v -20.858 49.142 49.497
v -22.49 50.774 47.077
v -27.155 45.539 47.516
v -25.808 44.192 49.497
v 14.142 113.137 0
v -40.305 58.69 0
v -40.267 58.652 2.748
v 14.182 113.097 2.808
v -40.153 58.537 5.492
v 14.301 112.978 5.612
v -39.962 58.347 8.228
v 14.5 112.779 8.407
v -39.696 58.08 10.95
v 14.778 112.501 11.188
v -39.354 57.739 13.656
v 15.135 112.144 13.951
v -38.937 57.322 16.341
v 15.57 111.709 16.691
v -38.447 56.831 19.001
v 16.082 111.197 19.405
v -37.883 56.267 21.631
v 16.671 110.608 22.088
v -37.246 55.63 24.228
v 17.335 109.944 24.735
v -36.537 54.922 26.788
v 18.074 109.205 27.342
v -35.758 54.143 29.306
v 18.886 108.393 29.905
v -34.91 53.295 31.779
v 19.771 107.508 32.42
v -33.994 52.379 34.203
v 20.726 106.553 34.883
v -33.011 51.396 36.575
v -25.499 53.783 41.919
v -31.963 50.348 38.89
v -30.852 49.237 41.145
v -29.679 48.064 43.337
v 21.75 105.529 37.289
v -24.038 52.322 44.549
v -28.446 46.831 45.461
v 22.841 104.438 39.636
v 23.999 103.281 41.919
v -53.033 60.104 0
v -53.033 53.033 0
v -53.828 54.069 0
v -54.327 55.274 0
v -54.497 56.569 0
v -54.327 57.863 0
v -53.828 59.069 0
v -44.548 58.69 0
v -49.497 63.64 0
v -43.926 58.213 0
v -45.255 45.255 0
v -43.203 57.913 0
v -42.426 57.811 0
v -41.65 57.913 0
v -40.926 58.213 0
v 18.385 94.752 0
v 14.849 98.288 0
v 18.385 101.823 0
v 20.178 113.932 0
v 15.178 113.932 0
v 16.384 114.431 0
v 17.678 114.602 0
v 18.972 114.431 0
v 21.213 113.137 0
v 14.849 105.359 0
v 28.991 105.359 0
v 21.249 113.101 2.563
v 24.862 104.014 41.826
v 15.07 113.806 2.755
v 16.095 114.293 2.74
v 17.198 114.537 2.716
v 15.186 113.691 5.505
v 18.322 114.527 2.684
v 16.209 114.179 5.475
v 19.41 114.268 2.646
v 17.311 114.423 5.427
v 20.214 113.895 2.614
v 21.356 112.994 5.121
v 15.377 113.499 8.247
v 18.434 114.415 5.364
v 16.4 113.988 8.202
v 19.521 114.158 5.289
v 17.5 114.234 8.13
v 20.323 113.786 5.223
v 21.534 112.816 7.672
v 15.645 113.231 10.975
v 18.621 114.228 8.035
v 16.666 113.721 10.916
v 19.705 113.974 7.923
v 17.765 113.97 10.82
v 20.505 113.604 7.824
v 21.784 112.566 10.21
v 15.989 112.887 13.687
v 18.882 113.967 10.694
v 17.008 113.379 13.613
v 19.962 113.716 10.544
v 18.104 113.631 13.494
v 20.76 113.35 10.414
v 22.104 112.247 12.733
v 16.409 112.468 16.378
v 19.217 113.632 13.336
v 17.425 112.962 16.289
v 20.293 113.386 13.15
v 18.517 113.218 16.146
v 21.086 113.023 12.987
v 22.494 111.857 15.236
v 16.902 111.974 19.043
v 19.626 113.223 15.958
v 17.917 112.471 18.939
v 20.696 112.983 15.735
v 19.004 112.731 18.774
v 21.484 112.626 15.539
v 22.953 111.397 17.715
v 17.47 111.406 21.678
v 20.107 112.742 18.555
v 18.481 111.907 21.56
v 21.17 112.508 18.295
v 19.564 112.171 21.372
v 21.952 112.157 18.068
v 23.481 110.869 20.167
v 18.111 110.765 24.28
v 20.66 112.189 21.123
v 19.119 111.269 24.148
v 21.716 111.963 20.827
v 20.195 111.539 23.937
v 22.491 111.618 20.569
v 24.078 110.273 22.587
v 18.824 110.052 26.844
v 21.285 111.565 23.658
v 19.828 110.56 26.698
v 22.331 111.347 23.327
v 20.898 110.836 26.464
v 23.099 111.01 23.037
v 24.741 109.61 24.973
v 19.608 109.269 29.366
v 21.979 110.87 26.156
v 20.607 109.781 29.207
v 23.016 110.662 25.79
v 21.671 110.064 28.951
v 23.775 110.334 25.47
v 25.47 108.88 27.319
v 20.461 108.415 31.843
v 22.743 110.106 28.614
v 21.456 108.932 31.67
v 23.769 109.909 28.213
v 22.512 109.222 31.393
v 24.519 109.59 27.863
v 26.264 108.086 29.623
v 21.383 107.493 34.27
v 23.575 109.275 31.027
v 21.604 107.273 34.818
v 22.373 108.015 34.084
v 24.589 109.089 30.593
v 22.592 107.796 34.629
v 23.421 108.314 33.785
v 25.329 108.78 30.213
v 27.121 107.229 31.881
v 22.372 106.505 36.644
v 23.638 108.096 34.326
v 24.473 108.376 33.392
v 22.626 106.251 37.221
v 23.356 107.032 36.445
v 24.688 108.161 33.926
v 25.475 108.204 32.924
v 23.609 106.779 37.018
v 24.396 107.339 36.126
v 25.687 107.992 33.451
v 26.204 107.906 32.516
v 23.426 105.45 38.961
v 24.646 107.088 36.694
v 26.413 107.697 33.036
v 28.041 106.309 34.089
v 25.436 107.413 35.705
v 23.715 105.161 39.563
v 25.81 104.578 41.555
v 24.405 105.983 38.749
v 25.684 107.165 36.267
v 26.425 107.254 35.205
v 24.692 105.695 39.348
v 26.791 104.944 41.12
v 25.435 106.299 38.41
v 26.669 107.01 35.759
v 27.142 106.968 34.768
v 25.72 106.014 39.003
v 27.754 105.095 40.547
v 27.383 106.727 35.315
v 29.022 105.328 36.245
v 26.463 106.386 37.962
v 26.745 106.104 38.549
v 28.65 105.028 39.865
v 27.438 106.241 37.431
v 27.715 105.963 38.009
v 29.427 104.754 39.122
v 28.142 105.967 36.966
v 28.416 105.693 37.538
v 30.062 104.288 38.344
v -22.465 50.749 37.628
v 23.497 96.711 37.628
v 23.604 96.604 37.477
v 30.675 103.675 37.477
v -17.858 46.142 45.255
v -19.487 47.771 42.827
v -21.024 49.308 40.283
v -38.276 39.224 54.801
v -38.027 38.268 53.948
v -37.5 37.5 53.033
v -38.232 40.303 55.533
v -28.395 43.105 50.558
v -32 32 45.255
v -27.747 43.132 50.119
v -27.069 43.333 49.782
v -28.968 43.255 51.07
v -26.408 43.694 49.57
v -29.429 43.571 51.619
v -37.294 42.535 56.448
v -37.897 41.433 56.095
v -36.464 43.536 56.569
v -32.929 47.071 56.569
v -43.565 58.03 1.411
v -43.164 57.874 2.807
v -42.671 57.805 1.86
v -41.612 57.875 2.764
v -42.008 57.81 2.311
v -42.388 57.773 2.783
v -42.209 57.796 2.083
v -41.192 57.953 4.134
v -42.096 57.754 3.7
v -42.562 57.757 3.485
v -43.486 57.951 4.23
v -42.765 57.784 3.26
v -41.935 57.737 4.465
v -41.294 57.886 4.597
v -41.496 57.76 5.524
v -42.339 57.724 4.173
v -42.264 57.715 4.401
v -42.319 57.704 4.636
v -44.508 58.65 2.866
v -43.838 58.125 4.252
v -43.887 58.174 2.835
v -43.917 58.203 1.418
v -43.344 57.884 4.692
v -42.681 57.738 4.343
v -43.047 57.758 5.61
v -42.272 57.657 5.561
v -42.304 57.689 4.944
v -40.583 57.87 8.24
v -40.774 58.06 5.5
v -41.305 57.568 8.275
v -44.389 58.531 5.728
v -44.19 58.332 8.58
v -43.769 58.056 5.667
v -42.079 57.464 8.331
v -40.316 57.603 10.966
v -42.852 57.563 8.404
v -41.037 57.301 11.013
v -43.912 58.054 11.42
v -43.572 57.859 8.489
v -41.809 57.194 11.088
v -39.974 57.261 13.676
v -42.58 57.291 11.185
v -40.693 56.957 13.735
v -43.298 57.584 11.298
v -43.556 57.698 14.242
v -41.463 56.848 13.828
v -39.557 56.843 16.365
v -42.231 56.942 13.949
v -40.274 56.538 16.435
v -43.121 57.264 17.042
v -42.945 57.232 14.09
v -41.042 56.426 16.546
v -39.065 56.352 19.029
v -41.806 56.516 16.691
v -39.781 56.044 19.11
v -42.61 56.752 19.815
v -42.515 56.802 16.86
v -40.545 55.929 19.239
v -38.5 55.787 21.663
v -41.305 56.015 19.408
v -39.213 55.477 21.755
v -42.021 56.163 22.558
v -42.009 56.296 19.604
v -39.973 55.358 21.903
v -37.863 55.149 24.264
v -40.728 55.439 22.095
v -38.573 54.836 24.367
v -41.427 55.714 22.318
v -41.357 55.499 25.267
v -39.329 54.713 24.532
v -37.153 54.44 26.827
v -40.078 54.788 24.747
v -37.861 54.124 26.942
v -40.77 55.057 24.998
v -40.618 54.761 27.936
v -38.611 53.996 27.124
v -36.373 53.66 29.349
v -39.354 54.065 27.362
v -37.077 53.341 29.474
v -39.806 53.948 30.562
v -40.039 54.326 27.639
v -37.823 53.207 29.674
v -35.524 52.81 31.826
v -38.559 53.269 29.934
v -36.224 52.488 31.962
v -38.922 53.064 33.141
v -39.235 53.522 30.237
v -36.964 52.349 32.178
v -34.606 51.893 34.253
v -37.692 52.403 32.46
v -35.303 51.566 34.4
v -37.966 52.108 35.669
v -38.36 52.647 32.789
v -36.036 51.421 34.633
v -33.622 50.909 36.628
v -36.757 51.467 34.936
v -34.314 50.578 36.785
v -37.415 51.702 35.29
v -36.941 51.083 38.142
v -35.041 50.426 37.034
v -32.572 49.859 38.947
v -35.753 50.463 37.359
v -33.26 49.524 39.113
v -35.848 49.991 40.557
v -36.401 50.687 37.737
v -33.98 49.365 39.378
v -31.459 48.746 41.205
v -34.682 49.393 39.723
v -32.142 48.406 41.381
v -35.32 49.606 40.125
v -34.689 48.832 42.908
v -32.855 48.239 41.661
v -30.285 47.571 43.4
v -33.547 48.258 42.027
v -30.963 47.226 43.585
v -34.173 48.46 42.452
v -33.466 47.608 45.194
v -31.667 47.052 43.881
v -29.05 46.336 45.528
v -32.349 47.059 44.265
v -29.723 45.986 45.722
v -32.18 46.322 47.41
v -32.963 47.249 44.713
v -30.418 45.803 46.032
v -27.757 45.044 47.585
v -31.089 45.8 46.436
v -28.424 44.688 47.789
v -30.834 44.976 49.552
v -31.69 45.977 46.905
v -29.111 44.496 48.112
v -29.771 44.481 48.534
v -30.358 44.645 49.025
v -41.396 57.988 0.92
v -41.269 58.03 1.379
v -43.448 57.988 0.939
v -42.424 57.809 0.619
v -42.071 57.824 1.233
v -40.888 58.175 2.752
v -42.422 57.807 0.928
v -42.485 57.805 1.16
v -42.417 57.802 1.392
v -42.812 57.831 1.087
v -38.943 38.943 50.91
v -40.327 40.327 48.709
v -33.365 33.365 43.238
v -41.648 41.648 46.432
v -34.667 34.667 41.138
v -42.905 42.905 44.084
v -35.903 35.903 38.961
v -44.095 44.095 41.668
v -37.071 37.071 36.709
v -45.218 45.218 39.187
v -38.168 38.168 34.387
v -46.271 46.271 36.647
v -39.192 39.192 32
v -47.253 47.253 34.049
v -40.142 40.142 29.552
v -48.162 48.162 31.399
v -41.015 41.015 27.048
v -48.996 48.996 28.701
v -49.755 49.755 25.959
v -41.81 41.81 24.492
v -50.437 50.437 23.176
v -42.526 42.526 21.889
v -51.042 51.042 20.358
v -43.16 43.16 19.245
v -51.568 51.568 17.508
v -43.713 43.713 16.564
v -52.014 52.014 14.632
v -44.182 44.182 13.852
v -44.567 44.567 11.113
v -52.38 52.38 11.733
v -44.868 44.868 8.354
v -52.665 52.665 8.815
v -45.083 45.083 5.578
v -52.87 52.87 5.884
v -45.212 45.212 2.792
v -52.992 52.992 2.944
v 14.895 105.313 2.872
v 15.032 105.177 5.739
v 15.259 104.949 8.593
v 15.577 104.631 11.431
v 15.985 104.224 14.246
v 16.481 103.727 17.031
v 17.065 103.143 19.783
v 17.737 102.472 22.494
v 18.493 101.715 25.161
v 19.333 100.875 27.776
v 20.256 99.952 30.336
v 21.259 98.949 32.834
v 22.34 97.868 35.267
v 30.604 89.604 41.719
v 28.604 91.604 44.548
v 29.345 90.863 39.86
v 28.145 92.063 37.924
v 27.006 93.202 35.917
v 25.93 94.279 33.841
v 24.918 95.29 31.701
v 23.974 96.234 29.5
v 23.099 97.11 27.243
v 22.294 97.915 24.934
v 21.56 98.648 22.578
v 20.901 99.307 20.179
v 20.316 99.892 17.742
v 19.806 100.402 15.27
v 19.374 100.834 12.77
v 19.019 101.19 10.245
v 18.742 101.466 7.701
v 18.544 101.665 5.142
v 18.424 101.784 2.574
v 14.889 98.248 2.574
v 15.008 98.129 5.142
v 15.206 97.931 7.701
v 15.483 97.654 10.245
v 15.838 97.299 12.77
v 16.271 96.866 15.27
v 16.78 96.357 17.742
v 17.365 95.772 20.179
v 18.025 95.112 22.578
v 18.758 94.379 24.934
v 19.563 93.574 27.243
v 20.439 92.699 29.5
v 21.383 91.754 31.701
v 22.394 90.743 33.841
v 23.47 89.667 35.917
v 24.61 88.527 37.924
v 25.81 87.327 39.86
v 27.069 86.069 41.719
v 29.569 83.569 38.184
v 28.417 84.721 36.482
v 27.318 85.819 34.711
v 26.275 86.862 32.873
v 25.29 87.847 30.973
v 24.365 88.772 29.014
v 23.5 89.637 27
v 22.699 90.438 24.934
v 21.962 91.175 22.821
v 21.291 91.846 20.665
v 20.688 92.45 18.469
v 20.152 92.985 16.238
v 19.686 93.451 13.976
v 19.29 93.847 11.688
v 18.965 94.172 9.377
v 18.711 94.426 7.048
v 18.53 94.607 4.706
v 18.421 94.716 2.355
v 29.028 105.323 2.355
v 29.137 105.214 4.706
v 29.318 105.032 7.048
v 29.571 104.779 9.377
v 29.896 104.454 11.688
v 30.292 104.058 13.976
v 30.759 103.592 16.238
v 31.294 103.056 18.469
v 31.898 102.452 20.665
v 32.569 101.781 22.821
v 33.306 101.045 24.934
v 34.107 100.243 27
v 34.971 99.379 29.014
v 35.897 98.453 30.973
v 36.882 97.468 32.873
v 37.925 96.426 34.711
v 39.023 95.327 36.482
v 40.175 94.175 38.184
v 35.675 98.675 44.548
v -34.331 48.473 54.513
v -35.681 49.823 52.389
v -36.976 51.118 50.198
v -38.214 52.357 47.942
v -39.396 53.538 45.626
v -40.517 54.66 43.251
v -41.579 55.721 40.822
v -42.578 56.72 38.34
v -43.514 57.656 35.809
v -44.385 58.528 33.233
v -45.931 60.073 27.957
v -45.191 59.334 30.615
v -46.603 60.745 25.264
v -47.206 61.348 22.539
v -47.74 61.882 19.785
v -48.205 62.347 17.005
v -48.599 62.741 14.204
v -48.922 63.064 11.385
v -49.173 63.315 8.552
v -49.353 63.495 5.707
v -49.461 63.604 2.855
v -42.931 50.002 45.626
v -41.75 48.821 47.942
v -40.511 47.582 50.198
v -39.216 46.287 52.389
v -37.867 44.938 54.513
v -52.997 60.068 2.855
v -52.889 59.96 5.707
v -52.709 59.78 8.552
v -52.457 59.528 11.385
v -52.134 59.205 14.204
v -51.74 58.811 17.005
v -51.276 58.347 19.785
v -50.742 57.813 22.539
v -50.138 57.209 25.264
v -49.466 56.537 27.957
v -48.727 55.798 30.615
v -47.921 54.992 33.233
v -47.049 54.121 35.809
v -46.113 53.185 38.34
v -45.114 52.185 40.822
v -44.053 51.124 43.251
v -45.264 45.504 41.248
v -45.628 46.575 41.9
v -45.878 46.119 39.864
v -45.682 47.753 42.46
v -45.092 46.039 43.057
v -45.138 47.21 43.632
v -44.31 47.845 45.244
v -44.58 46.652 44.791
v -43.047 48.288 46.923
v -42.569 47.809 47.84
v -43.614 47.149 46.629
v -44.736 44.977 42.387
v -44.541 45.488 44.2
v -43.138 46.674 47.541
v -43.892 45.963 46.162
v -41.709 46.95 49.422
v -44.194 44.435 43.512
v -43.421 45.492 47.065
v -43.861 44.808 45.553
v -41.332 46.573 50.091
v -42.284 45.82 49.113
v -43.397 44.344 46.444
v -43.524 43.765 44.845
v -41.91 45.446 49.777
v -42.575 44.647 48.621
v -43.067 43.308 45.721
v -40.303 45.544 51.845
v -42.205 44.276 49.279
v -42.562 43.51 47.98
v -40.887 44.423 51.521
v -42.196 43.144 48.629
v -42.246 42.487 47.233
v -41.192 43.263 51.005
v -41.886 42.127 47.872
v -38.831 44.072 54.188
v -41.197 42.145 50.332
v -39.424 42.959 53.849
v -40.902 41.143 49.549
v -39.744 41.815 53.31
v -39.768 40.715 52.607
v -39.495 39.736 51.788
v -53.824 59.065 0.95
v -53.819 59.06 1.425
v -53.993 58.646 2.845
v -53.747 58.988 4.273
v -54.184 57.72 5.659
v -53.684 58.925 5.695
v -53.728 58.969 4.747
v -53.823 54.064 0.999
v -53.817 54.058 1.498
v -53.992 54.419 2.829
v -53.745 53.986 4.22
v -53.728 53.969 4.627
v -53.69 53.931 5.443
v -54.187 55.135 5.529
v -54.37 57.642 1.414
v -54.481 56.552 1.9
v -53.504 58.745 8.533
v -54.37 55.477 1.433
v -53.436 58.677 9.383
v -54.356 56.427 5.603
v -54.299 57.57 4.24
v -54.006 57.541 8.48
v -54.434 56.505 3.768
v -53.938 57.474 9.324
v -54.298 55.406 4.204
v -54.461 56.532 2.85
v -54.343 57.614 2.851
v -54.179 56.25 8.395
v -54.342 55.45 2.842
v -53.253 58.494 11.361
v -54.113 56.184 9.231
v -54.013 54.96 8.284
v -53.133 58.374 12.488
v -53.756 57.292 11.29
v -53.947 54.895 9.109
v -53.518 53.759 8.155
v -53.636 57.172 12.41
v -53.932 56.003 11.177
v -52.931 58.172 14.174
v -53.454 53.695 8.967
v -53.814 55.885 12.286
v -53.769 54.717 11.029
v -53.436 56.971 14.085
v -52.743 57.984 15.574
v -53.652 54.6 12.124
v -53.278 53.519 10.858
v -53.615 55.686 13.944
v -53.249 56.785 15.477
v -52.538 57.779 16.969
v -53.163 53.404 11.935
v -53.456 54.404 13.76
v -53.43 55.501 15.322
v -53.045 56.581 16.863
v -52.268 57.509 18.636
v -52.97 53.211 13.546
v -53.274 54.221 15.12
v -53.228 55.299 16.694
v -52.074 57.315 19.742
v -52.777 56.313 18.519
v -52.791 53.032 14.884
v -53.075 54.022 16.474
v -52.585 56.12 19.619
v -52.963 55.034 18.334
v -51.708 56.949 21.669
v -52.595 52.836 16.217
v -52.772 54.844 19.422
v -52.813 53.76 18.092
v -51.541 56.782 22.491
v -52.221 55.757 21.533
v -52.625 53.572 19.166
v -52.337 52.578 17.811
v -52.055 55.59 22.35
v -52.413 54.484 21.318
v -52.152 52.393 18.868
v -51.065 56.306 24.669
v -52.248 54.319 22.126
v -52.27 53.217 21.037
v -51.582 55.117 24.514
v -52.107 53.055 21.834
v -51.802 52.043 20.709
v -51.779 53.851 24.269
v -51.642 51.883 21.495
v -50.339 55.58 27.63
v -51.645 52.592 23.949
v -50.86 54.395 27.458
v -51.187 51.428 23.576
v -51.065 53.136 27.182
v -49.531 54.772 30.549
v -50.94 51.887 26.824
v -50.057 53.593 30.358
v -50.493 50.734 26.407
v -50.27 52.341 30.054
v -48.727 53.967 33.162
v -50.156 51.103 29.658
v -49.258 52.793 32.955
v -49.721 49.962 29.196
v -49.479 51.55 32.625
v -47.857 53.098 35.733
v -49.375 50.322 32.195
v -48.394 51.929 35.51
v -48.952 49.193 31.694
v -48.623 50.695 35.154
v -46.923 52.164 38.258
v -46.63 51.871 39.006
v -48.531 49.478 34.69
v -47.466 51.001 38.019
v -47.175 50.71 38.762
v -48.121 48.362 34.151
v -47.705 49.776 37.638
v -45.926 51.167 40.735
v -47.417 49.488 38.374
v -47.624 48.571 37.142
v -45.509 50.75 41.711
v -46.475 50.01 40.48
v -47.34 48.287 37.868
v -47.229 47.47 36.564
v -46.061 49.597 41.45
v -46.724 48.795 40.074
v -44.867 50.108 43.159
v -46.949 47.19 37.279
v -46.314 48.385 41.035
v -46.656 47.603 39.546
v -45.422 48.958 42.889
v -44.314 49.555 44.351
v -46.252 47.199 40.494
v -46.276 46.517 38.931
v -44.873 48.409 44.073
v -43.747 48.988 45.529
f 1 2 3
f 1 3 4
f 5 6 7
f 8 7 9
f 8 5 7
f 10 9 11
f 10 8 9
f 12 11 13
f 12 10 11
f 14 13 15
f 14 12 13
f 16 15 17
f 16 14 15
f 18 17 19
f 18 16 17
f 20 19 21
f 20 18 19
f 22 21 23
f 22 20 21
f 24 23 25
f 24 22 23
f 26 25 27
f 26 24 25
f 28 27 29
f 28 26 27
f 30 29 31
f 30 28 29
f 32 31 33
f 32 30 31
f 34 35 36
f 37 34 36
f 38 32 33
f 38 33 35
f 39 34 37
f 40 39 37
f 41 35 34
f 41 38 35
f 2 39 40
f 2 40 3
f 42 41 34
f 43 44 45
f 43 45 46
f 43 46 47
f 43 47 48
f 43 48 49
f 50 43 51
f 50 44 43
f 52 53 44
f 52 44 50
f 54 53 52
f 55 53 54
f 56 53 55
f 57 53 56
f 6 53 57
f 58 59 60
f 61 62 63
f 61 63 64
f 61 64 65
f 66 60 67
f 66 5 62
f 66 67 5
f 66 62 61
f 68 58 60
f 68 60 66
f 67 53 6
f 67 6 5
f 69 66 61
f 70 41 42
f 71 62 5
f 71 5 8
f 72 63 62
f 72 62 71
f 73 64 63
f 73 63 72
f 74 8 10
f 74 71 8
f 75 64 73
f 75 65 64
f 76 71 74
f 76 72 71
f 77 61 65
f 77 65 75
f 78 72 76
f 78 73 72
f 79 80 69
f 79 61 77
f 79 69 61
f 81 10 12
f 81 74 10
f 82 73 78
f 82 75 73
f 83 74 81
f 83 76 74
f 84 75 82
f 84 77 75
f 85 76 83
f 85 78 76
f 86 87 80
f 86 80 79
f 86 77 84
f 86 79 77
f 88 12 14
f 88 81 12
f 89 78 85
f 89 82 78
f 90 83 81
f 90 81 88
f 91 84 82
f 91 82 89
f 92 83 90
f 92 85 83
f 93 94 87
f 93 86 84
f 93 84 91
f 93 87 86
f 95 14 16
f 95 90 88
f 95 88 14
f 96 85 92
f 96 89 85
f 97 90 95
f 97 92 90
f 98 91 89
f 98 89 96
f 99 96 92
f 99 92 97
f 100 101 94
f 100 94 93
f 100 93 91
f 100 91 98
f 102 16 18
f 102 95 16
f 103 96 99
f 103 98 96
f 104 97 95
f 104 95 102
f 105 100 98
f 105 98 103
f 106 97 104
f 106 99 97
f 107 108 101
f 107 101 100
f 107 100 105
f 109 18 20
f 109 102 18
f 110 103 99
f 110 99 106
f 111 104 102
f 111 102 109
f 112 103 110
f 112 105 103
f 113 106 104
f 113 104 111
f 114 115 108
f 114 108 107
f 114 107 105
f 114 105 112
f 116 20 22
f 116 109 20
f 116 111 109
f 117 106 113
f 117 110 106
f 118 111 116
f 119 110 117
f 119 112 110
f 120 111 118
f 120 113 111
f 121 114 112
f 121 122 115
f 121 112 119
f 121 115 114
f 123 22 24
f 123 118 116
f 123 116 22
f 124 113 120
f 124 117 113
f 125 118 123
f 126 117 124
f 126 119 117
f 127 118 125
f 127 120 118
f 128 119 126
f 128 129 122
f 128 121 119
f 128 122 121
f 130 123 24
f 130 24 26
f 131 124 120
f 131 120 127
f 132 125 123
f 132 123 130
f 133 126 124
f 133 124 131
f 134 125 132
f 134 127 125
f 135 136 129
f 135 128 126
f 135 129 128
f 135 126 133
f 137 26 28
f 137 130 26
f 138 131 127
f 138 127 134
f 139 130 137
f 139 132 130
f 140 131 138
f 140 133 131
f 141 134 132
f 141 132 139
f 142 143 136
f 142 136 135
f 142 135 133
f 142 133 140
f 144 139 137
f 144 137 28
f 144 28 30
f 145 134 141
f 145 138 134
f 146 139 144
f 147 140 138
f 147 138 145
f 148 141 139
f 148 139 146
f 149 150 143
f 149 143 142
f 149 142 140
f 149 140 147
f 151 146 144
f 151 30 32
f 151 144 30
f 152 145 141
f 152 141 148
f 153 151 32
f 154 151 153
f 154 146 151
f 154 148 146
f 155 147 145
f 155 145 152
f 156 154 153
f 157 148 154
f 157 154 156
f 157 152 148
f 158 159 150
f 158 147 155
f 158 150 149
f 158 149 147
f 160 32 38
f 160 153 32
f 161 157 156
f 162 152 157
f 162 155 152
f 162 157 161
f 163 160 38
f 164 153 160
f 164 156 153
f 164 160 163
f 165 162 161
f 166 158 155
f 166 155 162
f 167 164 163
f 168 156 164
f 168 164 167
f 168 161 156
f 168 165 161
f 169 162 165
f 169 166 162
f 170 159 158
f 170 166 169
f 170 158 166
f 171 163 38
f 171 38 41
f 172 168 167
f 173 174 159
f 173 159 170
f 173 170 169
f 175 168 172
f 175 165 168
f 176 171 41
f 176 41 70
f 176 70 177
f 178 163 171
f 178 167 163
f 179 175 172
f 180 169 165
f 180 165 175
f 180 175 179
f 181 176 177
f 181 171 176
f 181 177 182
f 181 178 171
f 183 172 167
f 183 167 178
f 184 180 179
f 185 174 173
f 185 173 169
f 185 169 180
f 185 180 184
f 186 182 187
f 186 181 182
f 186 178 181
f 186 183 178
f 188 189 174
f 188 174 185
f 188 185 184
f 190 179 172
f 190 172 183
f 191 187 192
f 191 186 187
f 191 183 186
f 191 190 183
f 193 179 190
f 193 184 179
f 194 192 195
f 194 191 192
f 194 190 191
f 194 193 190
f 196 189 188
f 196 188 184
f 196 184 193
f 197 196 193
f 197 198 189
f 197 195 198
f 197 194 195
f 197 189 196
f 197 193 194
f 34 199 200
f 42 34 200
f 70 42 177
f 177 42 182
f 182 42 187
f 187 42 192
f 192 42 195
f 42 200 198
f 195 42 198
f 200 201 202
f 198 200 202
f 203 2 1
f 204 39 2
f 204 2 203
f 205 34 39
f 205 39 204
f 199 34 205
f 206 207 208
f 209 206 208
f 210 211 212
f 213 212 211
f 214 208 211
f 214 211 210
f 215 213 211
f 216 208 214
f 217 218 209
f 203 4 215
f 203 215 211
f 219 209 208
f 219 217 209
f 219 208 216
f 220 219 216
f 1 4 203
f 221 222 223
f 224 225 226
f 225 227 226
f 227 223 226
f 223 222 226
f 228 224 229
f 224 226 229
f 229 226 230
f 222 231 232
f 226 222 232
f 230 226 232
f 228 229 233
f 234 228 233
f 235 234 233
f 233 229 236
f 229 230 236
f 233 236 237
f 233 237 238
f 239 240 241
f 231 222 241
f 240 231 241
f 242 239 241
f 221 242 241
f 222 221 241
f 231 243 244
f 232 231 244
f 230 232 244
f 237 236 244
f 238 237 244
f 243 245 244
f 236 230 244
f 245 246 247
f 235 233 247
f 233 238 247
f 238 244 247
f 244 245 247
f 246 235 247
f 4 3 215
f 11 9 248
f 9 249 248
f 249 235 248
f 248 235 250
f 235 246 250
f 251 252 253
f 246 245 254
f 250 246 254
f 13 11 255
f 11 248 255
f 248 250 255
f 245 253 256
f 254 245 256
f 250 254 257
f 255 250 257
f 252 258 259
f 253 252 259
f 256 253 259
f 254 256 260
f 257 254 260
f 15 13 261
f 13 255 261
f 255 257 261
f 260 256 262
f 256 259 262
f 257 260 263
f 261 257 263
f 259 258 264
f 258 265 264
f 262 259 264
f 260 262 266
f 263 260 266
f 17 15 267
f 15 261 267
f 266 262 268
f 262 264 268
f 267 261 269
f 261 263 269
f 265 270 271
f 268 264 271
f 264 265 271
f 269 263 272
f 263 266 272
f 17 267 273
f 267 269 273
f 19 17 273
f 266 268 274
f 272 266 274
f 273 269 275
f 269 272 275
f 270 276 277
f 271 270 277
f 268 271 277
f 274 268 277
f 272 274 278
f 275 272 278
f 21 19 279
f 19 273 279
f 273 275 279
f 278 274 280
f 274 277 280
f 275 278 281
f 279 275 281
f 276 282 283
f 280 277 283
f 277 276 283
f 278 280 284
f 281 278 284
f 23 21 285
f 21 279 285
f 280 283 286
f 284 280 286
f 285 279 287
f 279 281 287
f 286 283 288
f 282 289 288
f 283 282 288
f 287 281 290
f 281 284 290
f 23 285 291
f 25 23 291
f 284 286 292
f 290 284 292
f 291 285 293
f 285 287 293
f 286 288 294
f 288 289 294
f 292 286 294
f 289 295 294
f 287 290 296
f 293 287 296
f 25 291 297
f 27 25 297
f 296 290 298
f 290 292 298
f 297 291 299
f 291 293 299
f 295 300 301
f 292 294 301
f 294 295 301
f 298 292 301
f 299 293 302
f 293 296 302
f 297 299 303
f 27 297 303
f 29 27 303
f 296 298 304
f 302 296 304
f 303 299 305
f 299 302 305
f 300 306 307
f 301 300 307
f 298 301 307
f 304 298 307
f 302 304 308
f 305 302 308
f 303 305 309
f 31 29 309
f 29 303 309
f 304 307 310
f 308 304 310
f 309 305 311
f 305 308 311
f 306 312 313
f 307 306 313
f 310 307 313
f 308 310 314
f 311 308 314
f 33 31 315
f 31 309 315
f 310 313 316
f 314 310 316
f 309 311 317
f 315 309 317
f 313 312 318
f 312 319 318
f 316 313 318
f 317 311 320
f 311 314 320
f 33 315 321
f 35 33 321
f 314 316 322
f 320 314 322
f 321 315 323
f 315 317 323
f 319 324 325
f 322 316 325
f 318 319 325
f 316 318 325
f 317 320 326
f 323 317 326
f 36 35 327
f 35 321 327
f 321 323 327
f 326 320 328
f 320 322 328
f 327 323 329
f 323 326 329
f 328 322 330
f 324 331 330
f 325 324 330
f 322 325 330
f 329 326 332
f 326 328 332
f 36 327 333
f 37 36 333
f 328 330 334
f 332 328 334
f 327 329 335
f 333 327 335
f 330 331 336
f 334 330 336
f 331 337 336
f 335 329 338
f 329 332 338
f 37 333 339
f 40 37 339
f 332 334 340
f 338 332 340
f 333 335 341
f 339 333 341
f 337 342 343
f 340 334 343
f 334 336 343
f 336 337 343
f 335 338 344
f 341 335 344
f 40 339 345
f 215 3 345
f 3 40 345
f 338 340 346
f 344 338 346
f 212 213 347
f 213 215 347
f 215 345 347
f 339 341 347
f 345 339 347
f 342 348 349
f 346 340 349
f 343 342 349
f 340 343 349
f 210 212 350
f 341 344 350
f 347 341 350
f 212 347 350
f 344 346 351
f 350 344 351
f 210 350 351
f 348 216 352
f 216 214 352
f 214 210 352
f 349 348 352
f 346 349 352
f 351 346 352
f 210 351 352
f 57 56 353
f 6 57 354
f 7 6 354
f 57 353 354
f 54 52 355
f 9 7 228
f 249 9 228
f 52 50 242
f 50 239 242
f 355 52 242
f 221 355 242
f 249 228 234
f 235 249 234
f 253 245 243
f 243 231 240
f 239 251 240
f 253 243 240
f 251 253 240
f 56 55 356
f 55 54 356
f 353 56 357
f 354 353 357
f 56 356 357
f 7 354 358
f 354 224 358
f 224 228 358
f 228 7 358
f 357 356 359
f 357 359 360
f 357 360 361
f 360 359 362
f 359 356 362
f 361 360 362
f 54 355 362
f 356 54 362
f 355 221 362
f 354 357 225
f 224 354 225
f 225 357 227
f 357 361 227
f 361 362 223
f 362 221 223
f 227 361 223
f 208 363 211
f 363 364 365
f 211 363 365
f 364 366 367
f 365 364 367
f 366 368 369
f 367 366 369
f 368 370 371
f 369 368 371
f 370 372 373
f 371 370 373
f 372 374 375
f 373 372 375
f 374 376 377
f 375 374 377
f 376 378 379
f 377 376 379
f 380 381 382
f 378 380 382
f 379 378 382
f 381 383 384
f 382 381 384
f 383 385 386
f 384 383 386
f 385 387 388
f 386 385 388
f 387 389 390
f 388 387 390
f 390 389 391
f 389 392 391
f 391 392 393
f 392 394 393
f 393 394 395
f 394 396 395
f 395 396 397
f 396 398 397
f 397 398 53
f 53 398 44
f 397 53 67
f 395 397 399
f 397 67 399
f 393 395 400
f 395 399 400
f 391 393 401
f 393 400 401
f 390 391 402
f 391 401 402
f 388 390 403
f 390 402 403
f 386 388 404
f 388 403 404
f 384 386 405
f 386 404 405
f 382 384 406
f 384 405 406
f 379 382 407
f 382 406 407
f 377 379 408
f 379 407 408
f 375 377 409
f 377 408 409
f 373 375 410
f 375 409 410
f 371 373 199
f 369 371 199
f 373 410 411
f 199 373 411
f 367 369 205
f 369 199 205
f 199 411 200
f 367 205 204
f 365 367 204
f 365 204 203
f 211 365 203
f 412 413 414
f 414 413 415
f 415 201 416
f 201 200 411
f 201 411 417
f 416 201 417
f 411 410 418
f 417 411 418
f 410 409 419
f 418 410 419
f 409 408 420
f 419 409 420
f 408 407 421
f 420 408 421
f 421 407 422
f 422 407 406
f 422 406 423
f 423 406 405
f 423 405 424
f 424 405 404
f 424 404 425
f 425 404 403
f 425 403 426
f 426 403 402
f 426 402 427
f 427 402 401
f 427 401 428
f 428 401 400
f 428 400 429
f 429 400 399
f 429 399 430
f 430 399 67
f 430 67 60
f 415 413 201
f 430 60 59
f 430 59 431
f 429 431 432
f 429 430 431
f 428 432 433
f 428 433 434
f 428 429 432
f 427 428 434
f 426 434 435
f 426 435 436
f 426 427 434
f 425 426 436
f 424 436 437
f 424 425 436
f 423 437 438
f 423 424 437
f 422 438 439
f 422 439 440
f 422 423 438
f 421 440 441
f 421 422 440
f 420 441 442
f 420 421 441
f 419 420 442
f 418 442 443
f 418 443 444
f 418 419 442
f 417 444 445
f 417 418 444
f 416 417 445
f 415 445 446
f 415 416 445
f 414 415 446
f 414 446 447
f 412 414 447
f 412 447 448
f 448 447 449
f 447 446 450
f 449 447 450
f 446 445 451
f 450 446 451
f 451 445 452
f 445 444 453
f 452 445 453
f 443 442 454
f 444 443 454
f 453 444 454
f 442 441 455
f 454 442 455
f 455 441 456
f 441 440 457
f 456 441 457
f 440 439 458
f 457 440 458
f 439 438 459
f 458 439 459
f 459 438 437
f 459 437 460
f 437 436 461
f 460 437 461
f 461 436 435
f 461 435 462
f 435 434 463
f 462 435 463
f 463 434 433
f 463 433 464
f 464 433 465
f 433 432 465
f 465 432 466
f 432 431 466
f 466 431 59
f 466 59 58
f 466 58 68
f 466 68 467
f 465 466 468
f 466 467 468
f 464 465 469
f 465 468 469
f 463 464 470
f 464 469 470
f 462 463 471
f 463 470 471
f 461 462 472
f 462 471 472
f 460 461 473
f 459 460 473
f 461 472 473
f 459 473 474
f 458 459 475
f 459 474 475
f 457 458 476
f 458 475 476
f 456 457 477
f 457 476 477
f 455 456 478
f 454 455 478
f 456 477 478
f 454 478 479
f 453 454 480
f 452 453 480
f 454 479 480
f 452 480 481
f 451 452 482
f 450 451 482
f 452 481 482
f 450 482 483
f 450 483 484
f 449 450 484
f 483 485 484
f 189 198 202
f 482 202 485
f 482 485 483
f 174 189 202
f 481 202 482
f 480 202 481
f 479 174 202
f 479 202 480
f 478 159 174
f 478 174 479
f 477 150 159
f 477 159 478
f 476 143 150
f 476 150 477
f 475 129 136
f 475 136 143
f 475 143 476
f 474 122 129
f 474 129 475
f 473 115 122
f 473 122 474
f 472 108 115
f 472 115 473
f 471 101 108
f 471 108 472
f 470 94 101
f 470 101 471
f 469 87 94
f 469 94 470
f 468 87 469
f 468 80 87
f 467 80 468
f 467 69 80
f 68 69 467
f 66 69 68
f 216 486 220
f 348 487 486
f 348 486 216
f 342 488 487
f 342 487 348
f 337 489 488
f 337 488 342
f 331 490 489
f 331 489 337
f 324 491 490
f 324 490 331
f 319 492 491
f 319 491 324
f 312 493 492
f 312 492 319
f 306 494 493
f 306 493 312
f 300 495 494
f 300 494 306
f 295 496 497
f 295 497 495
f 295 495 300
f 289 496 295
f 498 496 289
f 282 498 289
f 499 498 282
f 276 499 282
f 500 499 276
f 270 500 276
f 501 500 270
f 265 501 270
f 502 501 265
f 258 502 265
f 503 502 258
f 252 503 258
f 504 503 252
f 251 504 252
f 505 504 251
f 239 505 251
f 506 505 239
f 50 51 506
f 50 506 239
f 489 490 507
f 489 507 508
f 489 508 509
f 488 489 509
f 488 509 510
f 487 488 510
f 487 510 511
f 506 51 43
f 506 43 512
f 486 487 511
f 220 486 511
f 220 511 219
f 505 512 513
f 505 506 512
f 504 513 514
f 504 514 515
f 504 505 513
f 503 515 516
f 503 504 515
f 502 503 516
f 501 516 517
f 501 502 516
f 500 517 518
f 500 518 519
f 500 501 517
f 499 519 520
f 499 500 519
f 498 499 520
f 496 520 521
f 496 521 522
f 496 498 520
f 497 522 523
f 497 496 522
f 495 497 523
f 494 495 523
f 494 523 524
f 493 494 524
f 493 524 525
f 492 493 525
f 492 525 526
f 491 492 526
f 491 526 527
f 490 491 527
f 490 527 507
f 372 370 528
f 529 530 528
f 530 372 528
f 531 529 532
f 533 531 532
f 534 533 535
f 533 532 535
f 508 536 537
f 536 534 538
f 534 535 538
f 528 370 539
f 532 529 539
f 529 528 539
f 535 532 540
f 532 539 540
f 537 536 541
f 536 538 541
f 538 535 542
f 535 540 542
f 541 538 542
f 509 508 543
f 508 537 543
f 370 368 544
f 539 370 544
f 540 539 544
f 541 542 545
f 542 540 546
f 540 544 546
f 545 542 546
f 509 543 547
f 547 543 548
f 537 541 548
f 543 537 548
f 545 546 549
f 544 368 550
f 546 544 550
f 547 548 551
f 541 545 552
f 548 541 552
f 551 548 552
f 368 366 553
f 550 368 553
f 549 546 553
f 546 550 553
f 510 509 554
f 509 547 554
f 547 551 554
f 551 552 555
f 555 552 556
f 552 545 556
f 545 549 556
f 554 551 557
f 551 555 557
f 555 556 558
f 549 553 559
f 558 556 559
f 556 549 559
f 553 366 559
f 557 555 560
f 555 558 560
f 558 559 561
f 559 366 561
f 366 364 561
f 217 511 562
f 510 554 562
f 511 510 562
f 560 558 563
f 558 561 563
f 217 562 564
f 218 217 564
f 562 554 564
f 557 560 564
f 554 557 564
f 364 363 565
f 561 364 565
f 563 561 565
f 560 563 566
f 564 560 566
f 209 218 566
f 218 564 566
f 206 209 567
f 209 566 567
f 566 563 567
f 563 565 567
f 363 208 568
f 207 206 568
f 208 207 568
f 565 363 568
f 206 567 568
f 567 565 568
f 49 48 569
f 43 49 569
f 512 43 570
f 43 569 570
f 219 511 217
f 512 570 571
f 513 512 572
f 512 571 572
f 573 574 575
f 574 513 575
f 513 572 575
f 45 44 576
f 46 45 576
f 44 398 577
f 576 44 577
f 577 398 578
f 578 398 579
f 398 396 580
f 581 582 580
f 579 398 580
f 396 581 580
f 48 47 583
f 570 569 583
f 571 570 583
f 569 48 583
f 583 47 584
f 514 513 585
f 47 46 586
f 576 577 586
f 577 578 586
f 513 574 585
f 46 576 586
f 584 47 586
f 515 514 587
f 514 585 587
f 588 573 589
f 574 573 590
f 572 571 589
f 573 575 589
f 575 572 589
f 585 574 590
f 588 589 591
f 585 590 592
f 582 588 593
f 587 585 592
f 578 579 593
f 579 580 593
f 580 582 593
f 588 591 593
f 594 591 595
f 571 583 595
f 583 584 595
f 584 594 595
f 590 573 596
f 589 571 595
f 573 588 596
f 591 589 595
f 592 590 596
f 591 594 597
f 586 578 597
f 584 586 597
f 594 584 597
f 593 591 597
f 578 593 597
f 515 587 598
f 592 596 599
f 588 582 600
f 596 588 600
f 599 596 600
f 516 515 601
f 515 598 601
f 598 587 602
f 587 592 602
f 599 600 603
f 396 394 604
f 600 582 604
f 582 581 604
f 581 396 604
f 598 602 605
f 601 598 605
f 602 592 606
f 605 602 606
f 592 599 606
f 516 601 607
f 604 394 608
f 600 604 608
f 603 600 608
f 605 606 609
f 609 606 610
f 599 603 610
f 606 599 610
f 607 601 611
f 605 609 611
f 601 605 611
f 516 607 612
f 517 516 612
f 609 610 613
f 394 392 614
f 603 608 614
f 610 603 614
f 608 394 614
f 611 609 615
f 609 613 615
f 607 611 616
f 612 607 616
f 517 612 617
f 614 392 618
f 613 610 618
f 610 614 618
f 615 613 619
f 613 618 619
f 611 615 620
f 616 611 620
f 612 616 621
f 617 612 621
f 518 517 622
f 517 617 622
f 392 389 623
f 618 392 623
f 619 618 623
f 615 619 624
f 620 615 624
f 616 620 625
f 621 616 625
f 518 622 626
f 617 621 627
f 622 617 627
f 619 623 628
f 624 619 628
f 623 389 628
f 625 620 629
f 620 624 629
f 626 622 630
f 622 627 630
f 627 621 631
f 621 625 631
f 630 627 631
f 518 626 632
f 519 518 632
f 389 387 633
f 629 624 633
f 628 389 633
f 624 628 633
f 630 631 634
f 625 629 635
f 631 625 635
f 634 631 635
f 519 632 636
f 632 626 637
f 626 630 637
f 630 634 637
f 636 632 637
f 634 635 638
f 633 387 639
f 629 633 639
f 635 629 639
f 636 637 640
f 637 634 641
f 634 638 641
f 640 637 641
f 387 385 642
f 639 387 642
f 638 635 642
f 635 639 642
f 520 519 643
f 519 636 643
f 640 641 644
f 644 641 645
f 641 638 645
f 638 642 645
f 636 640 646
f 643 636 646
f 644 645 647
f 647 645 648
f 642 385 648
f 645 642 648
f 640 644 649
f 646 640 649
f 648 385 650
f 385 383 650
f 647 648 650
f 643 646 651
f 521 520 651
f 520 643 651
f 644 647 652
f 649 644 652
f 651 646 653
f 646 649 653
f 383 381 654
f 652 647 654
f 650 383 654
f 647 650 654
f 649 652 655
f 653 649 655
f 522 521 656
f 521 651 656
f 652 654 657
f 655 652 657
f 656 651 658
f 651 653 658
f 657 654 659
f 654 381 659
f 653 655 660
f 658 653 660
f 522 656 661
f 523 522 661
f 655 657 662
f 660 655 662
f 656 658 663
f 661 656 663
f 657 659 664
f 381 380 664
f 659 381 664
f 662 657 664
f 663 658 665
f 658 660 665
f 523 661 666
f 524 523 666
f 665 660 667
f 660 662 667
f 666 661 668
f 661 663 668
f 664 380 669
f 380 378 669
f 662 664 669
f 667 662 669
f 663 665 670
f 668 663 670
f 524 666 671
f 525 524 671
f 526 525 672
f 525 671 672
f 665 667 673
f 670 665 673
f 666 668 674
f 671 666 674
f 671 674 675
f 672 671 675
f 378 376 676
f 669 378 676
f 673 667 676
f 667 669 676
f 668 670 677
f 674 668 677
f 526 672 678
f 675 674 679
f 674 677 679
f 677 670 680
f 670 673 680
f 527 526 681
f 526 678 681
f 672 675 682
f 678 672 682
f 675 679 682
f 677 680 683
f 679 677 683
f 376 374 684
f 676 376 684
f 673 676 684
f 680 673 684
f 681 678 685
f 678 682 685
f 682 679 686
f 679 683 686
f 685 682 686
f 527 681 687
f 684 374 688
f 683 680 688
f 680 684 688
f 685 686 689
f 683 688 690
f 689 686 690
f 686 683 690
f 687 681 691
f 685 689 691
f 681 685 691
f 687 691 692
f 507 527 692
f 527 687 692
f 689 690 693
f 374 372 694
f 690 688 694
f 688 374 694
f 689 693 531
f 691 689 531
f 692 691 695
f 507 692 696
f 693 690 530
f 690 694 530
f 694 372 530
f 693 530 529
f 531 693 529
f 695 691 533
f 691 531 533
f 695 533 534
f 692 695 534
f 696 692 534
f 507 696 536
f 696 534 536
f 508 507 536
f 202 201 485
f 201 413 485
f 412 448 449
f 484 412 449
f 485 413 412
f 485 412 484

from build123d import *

# Parameters (mm, degrees)
BOX007_W               = 100
BOX007_H               = 100
BOX007_DEPTH           = 100
BOX007_PLACEMENT_ANGLE = -45
BOX006_W               = 100
BOX006_H               = 200
BOX006_DEPTH           = 100
BOX006_PLACEMENT_ANGLE = 45
BOX005_W               = 100
BOX005_H               = 100
BOX005_DEPTH           = 100
BOX004_W               = 20
BOX004_H               = 20
BOX004_DEPTH           = 80
BOX003_W               = 20
BOX003_H               = 20
BOX003_DEPTH           = 80
BOX002_W               = 10
BOX002_H               = 25
BOX002_DEPTH           = 35
BOX002_PITCH_ANGLE     = -15
BOX001_W               = 10
BOX001_H               = 25
BOX001_DEPTH           = 35
BOX001_PITCH_ANGLE     = 15
BOX_W                  = 20
BOX_H                  = 25
BOX_DEPTH              = 35
CYLINDER005_R          = 10
CYLINDER005_DEPTH      = 180
CYLINDER005_ROLL_ANGLE = 90
CYLINDER004_R          = 54
CYLINDER004_DEPTH      = 100
CYLINDER003_R          = 59
CYLINDER003_DEPTH      = 10
CYLINDER002_R          = 64
CYLINDER002_DEPTH      = 85
CYLINDER001_R          = 70
CYLINDER001_DEPTH      = 90
CYLINDER_R             = 80
CYLINDER_DEPTH         = 10
FILLET_R               = 3
FILLET001_R            = 5
FILLET002_R            = 5
CUT009_ROLL_ANGLE      = -90
CUT009_PITCH_ANGLE     = 45
CUT009_PLACEMENT_ANGLE = -45


with BuildPart() as cube004:
    # Box007 → Box007 (new body)
    with BuildSketch(Plane.XY):
        with Locations((50, 50)):
            Rectangle(BOX007_W, BOX007_H)
    extrude(amount=BOX007_DEPTH)


with BuildPart() as cube004_1:
    # Box007 placement: moved
    add(cube004.part.rotate(Axis((0, 0, 0), (0, 0, 1)), BOX007_PLACEMENT_ANGLE))


with BuildPart() as cube003:
    # Box006 → Box006 (new body)
    with BuildSketch(Plane.XY):
        with Locations((50, 100)):
            Rectangle(BOX006_W, BOX006_H)
    extrude(amount=BOX006_DEPTH)


with BuildPart() as cube003_1:
    # Box006 placement: moved
    add(cube003.part.moved(Location((71, -71, 0))).rotate(Axis((71, -71, 0), (0, 0, 1)), BOX006_PLACEMENT_ANGLE))


with BuildPart() as cube002:
    # Box005 → Box005 (new body)
    with BuildSketch(Plane(origin=(0, 0, 0), x_dir=(-1, 0, 0), z_dir=(0, 0, 1))):
        with Locations((50, 50)):
            Rectangle(BOX005_W, BOX005_H)
    extrude(amount=BOX005_DEPTH)


with BuildPart() as tab_cut_l:
    # Box004 → Box004 (new body)
    with BuildSketch(Plane(origin=(-83, -10, 20), x_dir=(1, 0, 0), z_dir=(0, 0, 1))):
        with Locations((10, 10)):
            Rectangle(BOX004_W, BOX004_H)
    extrude(amount=BOX004_DEPTH)


with BuildPart() as tab_cut_r:
    # Box003 → Box003 (new body)
    with BuildSketch(Plane(origin=(63, -10, 20), x_dir=(1, 0, 0), z_dir=(0, 0, 1))):
        with Locations((10, 10)):
            Rectangle(BOX003_W, BOX003_H)
    extrude(amount=BOX003_DEPTH)


with BuildPart() as cube001:
    # Box002 → Box002 (new body)
    with BuildSketch(Plane.XY):
        with Locations((5, 12.5)):
            Rectangle(BOX002_W, BOX002_H)
    extrude(amount=BOX002_DEPTH)


with BuildPart() as cube001_1:
    # Box002 pitch: moved
    add(cube001.part.rotate(Axis((0, 0, 0), (0, 1, 0)), BOX002_PITCH_ANGLE))


with BuildPart() as cube001_2:
    # Box002 placement: moved
    add(cube001_1.part.moved(Location((-9.95, 48, 64))))


with BuildPart() as cube:
    # Box001 → Box001 (new body)
    with BuildSketch(Plane.XY):
        with Locations((5, 12.5)):
            Rectangle(BOX001_W, BOX001_H)
    extrude(amount=BOX001_DEPTH)


with BuildPart() as cube_1:
    # Box001 pitch: moved
    add(cube.part.rotate(Axis((0, 0, 0), (0, 1, 0)), BOX001_PITCH_ANGLE))


with BuildPart() as cube_2:
    # Box001 placement: moved
    add(cube_1.part.moved(Location((0, 48, 65))))


with BuildPart() as bearing_slot:
    # Box → Box (new body)
    with BuildSketch(Plane(origin=(-10, 48, 65), x_dir=(1, 0, 0), z_dir=(0, 0, 1))):
        with Locations((10, 12.5)):
            Rectangle(BOX_W, BOX_H)
    extrude(amount=BOX_DEPTH)


with BuildPart() as bearing_holes:
    # Cylinder005 → Cylinder005 (new body)
    with BuildSketch(Plane.XY):
        Circle(CYLINDER005_R)
    extrude(amount=CYLINDER005_DEPTH)


with BuildPart() as bearing_holes_1:
    # Cylinder005 roll: moved
    add(bearing_holes.part.rotate(Axis((0, 0, 0), (1, 0, 0)), CYLINDER005_ROLL_ANGLE))


with BuildPart() as bearing_holes_2:
    # Cylinder005 placement: moved
    add(bearing_holes_1.part.moved(Location((0, 90, 65))))


with BuildPart() as through_hole:
    # Cylinder004 → Cylinder004 (new body)
    with BuildSketch(Plane.XY):
        Circle(CYLINDER004_R)
    extrude(amount=CYLINDER004_DEPTH)


with BuildPart() as inner_lip:
    # Cylinder003 → Cylinder003 (new body)
    with BuildSketch(Plane.XY.offset(80)):
        Circle(CYLINDER003_R)
    extrude(amount=CYLINDER003_DEPTH)


with BuildPart() as inner_hole:
    # Cylinder002 → Cylinder002 (new body)
    with BuildSketch(Plane.XY):
        Circle(CYLINDER002_R)
    extrude(amount=CYLINDER002_DEPTH)


with BuildPart() as body_cylinder:
    # Cylinder001 → Cylinder001 (new body)
    with BuildSketch(Plane.XY.offset(5)):
        Circle(CYLINDER001_R)
    extrude(amount=CYLINDER001_DEPTH)


with BuildPart() as cut010:
    # Cylinder → Cylinder (new body)
    with BuildSketch(Plane.XY):
        Circle(CYLINDER_R)
    extrude(amount=CYLINDER_DEPTH)

    # Fusion: union Body_Cylinder
    add(body_cylinder.part)

    # Cut: cut Inner_Hole
    add(inner_hole.part, mode=Mode.SUBTRACT)

    # Fusion001: union Inner_Lip
    add(inner_lip.part)

    # Cut001: cut Through_Hole
    add(through_hole.part, mode=Mode.SUBTRACT)

    # Fillet
    fillet_edges = [cut010.edges().sort_by_distance(p)[0] for p in [
        (-70, 0, 10),
    ]]
    fillet(fillet_edges, radius=FILLET_R)

    # Fillet001
    fillet001_edges = [cut010.edges().sort_by_distance(p)[0] for p in [
        (-80, 0, 0),
    ]]
    fillet(fillet001_edges, radius=FILLET001_R)

    # Fillet002
    fillet002_edges = [cut010.edges().sort_by_distance(p)[0] for p in [
        (-70, 0, 95),
    ]]
    fillet(fillet002_edges, radius=FILLET002_R)

    # Cut002: cut Bearing_Holes
    add(bearing_holes_2.part, mode=Mode.SUBTRACT)

    # Cut003: cut Bearing_Slot
    add(bearing_slot.part, mode=Mode.SUBTRACT)

    # Cut004: cut Cube
    add(cube_2.part, mode=Mode.SUBTRACT)

    # Cut005: cut Cube001
    add(cube001_2.part, mode=Mode.SUBTRACT)

    # Cut006: cut Tab_Cut_R
    add(tab_cut_r.part, mode=Mode.SUBTRACT)

    # Cut007: cut Tab_Cut_L
    add(tab_cut_l.part, mode=Mode.SUBTRACT)

    # Cut008: cut Cube002
    add(cube002.part, mode=Mode.SUBTRACT)

    # Cut009: cut Cube003
    add(cube003_1.part, mode=Mode.SUBTRACT)


with BuildPart() as cut010_1:
    # Cut009 roll: moved
    add(cut010.part.rotate(Axis((0, 0, 0), (1, 0, 0)), CUT009_ROLL_ANGLE))


with BuildPart() as cut010_2:
    # Cut009 pitch: moved
    add(cut010_1.part.rotate(Axis((0, 0, 0), (0, 1, 0)), CUT009_PITCH_ANGLE))


with BuildPart() as cut010_3:
    # Cut009 placement: moved
    add(cut010_2.part.rotate(Axis((0, 0, 0), (0, 0, 1)), CUT009_PLACEMENT_ANGLE))

    # Cut010: cut Cube004
    add(cube004_1.part, mode=Mode.SUBTRACT)


solid = cut010_3.part
